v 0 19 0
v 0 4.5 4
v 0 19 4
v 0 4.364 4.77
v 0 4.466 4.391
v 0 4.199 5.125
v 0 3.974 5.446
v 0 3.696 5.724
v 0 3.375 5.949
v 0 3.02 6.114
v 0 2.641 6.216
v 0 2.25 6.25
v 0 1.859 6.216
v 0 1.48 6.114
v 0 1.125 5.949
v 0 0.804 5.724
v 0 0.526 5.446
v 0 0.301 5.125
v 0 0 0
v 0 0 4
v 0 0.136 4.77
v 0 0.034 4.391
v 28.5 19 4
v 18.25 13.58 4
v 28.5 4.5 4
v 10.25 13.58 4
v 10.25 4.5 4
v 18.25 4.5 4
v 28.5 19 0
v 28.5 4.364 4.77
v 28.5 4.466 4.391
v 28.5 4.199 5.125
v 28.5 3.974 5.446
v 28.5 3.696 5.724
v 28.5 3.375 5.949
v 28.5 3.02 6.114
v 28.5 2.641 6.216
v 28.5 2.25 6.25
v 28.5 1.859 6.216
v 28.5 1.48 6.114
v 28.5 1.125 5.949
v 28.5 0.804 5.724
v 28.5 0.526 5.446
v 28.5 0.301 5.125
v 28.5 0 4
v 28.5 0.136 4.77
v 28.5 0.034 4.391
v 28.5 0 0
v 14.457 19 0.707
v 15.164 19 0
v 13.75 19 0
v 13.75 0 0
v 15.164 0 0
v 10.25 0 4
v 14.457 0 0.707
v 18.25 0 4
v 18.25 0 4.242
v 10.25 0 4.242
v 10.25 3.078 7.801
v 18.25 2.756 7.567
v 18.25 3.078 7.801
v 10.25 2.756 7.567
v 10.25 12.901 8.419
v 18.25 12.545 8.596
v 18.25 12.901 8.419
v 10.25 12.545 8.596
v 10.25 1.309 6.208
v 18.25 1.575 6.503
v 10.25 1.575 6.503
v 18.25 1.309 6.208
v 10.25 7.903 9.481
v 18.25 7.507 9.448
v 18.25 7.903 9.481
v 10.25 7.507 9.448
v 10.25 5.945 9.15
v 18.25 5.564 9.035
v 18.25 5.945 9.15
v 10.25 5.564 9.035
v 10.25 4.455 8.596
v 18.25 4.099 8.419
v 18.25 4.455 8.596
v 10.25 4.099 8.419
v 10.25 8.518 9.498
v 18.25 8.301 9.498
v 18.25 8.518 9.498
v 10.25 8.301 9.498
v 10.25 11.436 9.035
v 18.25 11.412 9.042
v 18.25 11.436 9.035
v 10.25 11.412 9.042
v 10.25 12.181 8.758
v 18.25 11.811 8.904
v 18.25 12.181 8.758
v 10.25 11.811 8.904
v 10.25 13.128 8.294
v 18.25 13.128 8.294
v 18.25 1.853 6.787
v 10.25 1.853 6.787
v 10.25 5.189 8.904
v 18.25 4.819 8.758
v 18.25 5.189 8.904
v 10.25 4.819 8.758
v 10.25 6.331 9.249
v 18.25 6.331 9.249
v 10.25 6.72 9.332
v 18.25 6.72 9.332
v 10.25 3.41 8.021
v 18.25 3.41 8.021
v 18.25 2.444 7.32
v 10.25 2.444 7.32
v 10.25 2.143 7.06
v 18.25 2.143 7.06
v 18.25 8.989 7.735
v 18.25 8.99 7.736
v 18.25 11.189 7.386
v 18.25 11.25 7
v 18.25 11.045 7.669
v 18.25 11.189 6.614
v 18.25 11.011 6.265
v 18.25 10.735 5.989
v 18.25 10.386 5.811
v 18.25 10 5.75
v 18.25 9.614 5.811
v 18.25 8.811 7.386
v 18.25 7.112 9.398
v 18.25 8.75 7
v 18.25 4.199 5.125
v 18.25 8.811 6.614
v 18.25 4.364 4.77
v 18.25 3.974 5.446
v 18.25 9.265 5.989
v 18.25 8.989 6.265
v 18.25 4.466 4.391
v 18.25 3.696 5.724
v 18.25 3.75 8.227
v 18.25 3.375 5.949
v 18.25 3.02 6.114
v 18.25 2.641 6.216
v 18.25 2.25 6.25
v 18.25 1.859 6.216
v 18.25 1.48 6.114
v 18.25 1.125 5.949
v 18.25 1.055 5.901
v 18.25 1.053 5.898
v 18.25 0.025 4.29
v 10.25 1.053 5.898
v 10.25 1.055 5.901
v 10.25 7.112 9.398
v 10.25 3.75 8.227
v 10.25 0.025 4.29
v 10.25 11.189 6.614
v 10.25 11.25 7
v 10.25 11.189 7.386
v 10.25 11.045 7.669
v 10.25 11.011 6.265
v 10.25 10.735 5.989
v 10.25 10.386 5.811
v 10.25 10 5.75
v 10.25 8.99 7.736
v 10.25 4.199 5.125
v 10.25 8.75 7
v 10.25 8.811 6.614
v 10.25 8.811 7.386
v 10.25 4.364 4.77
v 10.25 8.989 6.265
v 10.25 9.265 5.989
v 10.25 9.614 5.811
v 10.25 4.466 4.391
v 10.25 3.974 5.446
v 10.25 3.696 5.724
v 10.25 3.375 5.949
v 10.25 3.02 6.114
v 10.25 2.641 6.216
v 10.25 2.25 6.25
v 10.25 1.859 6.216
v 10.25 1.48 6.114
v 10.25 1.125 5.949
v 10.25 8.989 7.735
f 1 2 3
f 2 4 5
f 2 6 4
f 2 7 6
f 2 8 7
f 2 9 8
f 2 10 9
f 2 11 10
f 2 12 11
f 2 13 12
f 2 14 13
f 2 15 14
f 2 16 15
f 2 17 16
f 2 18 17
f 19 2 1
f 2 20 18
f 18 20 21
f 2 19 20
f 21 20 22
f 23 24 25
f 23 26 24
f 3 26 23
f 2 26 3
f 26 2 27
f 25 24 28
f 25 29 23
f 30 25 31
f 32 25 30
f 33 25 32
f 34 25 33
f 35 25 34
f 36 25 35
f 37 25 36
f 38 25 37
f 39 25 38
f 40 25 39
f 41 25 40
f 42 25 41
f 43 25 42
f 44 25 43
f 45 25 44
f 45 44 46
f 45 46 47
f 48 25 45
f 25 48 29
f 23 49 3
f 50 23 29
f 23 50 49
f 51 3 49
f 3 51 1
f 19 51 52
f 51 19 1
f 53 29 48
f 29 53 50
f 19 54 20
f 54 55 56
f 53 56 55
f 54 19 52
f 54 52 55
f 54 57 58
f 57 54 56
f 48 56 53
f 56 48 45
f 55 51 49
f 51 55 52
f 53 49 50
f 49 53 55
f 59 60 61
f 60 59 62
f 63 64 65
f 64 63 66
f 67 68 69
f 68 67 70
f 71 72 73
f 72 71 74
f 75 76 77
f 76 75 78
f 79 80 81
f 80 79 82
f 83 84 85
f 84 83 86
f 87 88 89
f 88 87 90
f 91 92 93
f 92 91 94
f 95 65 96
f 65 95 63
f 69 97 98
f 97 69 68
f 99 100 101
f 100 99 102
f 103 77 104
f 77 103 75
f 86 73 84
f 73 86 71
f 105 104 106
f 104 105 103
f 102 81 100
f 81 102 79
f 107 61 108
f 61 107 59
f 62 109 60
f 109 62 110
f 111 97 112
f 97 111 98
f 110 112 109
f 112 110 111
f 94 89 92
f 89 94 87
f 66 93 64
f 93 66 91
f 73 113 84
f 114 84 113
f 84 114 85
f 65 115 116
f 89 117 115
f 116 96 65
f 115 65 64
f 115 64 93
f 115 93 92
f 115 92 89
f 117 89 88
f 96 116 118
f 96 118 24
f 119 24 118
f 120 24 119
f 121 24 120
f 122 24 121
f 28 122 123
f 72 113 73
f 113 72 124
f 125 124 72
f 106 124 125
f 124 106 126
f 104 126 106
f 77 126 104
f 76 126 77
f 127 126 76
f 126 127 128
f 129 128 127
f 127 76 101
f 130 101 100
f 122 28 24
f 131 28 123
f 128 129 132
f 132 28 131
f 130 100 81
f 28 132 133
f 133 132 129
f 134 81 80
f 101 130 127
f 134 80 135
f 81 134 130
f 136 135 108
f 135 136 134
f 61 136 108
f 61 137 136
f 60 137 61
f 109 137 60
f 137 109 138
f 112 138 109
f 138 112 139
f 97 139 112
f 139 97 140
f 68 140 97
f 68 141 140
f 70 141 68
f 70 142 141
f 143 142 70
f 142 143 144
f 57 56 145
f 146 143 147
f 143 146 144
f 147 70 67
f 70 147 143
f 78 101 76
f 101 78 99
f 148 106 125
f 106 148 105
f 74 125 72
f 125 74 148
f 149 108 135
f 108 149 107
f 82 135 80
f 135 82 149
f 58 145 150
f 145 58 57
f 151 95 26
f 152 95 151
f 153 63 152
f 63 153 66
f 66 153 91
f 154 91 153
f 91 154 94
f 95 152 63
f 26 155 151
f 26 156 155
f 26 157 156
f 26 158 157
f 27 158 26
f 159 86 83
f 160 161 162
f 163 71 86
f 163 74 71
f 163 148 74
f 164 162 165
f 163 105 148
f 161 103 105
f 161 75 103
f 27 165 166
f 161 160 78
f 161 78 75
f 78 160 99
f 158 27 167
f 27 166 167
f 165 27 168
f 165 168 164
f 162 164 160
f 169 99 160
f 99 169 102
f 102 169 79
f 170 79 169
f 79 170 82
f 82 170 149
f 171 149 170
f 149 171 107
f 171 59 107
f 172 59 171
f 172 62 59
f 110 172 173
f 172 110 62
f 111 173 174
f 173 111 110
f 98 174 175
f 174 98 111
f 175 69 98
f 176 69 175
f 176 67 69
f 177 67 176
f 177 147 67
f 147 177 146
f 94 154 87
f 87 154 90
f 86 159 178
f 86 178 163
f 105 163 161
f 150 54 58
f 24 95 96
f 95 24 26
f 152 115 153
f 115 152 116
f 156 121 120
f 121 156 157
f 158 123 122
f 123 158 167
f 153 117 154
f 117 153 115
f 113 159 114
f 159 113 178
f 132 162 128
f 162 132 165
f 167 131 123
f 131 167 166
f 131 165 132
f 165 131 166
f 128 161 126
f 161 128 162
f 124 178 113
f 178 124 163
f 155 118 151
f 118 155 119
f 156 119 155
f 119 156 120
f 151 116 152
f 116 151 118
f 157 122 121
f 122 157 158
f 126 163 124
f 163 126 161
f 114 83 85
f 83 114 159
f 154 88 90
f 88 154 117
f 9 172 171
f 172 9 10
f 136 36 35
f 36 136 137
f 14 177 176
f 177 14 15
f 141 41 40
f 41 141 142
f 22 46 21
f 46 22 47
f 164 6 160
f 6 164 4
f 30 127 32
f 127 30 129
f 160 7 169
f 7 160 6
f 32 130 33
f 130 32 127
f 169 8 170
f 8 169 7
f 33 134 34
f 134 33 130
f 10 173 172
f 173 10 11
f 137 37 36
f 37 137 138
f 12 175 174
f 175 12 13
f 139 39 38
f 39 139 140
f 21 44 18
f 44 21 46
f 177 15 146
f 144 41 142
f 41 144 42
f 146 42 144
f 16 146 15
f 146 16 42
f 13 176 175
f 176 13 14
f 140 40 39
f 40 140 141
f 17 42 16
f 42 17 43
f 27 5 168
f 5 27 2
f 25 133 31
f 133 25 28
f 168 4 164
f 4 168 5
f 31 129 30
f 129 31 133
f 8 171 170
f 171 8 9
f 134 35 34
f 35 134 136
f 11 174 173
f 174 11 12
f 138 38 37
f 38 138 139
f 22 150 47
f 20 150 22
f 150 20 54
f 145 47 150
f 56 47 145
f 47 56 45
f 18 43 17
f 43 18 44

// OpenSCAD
$fa = 1.0;
$fs = 0.4;

difference() {
	cube([28.5, 19, 4]);

	color("blue")
	translate([28.5/2-0.5, 0, 0])
	rotate([0,45,0])
	cube([1, 19, 1]);
}

translate([0, 2.25, 4])
rotate([90,0,90])
cylinder(r=2.25, h=28.5);


difference() {
	translate([(28.5-8)/2, 0, 1])
	intersection() {
		translate([0,19/2-1,-1])
		rotate([90,0,90])
		cylinder(d=19, h=8);

		color("green")
		cube([20, 14, 10]);

	}

	color("orange")
	translate([(28.5-10)/2, 14, 0])
	rotate([6,0,0])
	cube([10, 10, 10]);

	color("blue")
	translate([(28.5-8)/2,10,7])
	rotate([90,0,90])
	cylinder(d=2.5, h=8);

color("blue")
translate([0, 9, 7.7])
rotate([15,0,0])
cube([28.5, 1.5, 3]);

color("blue")
translate([0, 9.5, 7.7])
rotate([-15,0,0])
cube([28.5, 1.5, 3]);
}
